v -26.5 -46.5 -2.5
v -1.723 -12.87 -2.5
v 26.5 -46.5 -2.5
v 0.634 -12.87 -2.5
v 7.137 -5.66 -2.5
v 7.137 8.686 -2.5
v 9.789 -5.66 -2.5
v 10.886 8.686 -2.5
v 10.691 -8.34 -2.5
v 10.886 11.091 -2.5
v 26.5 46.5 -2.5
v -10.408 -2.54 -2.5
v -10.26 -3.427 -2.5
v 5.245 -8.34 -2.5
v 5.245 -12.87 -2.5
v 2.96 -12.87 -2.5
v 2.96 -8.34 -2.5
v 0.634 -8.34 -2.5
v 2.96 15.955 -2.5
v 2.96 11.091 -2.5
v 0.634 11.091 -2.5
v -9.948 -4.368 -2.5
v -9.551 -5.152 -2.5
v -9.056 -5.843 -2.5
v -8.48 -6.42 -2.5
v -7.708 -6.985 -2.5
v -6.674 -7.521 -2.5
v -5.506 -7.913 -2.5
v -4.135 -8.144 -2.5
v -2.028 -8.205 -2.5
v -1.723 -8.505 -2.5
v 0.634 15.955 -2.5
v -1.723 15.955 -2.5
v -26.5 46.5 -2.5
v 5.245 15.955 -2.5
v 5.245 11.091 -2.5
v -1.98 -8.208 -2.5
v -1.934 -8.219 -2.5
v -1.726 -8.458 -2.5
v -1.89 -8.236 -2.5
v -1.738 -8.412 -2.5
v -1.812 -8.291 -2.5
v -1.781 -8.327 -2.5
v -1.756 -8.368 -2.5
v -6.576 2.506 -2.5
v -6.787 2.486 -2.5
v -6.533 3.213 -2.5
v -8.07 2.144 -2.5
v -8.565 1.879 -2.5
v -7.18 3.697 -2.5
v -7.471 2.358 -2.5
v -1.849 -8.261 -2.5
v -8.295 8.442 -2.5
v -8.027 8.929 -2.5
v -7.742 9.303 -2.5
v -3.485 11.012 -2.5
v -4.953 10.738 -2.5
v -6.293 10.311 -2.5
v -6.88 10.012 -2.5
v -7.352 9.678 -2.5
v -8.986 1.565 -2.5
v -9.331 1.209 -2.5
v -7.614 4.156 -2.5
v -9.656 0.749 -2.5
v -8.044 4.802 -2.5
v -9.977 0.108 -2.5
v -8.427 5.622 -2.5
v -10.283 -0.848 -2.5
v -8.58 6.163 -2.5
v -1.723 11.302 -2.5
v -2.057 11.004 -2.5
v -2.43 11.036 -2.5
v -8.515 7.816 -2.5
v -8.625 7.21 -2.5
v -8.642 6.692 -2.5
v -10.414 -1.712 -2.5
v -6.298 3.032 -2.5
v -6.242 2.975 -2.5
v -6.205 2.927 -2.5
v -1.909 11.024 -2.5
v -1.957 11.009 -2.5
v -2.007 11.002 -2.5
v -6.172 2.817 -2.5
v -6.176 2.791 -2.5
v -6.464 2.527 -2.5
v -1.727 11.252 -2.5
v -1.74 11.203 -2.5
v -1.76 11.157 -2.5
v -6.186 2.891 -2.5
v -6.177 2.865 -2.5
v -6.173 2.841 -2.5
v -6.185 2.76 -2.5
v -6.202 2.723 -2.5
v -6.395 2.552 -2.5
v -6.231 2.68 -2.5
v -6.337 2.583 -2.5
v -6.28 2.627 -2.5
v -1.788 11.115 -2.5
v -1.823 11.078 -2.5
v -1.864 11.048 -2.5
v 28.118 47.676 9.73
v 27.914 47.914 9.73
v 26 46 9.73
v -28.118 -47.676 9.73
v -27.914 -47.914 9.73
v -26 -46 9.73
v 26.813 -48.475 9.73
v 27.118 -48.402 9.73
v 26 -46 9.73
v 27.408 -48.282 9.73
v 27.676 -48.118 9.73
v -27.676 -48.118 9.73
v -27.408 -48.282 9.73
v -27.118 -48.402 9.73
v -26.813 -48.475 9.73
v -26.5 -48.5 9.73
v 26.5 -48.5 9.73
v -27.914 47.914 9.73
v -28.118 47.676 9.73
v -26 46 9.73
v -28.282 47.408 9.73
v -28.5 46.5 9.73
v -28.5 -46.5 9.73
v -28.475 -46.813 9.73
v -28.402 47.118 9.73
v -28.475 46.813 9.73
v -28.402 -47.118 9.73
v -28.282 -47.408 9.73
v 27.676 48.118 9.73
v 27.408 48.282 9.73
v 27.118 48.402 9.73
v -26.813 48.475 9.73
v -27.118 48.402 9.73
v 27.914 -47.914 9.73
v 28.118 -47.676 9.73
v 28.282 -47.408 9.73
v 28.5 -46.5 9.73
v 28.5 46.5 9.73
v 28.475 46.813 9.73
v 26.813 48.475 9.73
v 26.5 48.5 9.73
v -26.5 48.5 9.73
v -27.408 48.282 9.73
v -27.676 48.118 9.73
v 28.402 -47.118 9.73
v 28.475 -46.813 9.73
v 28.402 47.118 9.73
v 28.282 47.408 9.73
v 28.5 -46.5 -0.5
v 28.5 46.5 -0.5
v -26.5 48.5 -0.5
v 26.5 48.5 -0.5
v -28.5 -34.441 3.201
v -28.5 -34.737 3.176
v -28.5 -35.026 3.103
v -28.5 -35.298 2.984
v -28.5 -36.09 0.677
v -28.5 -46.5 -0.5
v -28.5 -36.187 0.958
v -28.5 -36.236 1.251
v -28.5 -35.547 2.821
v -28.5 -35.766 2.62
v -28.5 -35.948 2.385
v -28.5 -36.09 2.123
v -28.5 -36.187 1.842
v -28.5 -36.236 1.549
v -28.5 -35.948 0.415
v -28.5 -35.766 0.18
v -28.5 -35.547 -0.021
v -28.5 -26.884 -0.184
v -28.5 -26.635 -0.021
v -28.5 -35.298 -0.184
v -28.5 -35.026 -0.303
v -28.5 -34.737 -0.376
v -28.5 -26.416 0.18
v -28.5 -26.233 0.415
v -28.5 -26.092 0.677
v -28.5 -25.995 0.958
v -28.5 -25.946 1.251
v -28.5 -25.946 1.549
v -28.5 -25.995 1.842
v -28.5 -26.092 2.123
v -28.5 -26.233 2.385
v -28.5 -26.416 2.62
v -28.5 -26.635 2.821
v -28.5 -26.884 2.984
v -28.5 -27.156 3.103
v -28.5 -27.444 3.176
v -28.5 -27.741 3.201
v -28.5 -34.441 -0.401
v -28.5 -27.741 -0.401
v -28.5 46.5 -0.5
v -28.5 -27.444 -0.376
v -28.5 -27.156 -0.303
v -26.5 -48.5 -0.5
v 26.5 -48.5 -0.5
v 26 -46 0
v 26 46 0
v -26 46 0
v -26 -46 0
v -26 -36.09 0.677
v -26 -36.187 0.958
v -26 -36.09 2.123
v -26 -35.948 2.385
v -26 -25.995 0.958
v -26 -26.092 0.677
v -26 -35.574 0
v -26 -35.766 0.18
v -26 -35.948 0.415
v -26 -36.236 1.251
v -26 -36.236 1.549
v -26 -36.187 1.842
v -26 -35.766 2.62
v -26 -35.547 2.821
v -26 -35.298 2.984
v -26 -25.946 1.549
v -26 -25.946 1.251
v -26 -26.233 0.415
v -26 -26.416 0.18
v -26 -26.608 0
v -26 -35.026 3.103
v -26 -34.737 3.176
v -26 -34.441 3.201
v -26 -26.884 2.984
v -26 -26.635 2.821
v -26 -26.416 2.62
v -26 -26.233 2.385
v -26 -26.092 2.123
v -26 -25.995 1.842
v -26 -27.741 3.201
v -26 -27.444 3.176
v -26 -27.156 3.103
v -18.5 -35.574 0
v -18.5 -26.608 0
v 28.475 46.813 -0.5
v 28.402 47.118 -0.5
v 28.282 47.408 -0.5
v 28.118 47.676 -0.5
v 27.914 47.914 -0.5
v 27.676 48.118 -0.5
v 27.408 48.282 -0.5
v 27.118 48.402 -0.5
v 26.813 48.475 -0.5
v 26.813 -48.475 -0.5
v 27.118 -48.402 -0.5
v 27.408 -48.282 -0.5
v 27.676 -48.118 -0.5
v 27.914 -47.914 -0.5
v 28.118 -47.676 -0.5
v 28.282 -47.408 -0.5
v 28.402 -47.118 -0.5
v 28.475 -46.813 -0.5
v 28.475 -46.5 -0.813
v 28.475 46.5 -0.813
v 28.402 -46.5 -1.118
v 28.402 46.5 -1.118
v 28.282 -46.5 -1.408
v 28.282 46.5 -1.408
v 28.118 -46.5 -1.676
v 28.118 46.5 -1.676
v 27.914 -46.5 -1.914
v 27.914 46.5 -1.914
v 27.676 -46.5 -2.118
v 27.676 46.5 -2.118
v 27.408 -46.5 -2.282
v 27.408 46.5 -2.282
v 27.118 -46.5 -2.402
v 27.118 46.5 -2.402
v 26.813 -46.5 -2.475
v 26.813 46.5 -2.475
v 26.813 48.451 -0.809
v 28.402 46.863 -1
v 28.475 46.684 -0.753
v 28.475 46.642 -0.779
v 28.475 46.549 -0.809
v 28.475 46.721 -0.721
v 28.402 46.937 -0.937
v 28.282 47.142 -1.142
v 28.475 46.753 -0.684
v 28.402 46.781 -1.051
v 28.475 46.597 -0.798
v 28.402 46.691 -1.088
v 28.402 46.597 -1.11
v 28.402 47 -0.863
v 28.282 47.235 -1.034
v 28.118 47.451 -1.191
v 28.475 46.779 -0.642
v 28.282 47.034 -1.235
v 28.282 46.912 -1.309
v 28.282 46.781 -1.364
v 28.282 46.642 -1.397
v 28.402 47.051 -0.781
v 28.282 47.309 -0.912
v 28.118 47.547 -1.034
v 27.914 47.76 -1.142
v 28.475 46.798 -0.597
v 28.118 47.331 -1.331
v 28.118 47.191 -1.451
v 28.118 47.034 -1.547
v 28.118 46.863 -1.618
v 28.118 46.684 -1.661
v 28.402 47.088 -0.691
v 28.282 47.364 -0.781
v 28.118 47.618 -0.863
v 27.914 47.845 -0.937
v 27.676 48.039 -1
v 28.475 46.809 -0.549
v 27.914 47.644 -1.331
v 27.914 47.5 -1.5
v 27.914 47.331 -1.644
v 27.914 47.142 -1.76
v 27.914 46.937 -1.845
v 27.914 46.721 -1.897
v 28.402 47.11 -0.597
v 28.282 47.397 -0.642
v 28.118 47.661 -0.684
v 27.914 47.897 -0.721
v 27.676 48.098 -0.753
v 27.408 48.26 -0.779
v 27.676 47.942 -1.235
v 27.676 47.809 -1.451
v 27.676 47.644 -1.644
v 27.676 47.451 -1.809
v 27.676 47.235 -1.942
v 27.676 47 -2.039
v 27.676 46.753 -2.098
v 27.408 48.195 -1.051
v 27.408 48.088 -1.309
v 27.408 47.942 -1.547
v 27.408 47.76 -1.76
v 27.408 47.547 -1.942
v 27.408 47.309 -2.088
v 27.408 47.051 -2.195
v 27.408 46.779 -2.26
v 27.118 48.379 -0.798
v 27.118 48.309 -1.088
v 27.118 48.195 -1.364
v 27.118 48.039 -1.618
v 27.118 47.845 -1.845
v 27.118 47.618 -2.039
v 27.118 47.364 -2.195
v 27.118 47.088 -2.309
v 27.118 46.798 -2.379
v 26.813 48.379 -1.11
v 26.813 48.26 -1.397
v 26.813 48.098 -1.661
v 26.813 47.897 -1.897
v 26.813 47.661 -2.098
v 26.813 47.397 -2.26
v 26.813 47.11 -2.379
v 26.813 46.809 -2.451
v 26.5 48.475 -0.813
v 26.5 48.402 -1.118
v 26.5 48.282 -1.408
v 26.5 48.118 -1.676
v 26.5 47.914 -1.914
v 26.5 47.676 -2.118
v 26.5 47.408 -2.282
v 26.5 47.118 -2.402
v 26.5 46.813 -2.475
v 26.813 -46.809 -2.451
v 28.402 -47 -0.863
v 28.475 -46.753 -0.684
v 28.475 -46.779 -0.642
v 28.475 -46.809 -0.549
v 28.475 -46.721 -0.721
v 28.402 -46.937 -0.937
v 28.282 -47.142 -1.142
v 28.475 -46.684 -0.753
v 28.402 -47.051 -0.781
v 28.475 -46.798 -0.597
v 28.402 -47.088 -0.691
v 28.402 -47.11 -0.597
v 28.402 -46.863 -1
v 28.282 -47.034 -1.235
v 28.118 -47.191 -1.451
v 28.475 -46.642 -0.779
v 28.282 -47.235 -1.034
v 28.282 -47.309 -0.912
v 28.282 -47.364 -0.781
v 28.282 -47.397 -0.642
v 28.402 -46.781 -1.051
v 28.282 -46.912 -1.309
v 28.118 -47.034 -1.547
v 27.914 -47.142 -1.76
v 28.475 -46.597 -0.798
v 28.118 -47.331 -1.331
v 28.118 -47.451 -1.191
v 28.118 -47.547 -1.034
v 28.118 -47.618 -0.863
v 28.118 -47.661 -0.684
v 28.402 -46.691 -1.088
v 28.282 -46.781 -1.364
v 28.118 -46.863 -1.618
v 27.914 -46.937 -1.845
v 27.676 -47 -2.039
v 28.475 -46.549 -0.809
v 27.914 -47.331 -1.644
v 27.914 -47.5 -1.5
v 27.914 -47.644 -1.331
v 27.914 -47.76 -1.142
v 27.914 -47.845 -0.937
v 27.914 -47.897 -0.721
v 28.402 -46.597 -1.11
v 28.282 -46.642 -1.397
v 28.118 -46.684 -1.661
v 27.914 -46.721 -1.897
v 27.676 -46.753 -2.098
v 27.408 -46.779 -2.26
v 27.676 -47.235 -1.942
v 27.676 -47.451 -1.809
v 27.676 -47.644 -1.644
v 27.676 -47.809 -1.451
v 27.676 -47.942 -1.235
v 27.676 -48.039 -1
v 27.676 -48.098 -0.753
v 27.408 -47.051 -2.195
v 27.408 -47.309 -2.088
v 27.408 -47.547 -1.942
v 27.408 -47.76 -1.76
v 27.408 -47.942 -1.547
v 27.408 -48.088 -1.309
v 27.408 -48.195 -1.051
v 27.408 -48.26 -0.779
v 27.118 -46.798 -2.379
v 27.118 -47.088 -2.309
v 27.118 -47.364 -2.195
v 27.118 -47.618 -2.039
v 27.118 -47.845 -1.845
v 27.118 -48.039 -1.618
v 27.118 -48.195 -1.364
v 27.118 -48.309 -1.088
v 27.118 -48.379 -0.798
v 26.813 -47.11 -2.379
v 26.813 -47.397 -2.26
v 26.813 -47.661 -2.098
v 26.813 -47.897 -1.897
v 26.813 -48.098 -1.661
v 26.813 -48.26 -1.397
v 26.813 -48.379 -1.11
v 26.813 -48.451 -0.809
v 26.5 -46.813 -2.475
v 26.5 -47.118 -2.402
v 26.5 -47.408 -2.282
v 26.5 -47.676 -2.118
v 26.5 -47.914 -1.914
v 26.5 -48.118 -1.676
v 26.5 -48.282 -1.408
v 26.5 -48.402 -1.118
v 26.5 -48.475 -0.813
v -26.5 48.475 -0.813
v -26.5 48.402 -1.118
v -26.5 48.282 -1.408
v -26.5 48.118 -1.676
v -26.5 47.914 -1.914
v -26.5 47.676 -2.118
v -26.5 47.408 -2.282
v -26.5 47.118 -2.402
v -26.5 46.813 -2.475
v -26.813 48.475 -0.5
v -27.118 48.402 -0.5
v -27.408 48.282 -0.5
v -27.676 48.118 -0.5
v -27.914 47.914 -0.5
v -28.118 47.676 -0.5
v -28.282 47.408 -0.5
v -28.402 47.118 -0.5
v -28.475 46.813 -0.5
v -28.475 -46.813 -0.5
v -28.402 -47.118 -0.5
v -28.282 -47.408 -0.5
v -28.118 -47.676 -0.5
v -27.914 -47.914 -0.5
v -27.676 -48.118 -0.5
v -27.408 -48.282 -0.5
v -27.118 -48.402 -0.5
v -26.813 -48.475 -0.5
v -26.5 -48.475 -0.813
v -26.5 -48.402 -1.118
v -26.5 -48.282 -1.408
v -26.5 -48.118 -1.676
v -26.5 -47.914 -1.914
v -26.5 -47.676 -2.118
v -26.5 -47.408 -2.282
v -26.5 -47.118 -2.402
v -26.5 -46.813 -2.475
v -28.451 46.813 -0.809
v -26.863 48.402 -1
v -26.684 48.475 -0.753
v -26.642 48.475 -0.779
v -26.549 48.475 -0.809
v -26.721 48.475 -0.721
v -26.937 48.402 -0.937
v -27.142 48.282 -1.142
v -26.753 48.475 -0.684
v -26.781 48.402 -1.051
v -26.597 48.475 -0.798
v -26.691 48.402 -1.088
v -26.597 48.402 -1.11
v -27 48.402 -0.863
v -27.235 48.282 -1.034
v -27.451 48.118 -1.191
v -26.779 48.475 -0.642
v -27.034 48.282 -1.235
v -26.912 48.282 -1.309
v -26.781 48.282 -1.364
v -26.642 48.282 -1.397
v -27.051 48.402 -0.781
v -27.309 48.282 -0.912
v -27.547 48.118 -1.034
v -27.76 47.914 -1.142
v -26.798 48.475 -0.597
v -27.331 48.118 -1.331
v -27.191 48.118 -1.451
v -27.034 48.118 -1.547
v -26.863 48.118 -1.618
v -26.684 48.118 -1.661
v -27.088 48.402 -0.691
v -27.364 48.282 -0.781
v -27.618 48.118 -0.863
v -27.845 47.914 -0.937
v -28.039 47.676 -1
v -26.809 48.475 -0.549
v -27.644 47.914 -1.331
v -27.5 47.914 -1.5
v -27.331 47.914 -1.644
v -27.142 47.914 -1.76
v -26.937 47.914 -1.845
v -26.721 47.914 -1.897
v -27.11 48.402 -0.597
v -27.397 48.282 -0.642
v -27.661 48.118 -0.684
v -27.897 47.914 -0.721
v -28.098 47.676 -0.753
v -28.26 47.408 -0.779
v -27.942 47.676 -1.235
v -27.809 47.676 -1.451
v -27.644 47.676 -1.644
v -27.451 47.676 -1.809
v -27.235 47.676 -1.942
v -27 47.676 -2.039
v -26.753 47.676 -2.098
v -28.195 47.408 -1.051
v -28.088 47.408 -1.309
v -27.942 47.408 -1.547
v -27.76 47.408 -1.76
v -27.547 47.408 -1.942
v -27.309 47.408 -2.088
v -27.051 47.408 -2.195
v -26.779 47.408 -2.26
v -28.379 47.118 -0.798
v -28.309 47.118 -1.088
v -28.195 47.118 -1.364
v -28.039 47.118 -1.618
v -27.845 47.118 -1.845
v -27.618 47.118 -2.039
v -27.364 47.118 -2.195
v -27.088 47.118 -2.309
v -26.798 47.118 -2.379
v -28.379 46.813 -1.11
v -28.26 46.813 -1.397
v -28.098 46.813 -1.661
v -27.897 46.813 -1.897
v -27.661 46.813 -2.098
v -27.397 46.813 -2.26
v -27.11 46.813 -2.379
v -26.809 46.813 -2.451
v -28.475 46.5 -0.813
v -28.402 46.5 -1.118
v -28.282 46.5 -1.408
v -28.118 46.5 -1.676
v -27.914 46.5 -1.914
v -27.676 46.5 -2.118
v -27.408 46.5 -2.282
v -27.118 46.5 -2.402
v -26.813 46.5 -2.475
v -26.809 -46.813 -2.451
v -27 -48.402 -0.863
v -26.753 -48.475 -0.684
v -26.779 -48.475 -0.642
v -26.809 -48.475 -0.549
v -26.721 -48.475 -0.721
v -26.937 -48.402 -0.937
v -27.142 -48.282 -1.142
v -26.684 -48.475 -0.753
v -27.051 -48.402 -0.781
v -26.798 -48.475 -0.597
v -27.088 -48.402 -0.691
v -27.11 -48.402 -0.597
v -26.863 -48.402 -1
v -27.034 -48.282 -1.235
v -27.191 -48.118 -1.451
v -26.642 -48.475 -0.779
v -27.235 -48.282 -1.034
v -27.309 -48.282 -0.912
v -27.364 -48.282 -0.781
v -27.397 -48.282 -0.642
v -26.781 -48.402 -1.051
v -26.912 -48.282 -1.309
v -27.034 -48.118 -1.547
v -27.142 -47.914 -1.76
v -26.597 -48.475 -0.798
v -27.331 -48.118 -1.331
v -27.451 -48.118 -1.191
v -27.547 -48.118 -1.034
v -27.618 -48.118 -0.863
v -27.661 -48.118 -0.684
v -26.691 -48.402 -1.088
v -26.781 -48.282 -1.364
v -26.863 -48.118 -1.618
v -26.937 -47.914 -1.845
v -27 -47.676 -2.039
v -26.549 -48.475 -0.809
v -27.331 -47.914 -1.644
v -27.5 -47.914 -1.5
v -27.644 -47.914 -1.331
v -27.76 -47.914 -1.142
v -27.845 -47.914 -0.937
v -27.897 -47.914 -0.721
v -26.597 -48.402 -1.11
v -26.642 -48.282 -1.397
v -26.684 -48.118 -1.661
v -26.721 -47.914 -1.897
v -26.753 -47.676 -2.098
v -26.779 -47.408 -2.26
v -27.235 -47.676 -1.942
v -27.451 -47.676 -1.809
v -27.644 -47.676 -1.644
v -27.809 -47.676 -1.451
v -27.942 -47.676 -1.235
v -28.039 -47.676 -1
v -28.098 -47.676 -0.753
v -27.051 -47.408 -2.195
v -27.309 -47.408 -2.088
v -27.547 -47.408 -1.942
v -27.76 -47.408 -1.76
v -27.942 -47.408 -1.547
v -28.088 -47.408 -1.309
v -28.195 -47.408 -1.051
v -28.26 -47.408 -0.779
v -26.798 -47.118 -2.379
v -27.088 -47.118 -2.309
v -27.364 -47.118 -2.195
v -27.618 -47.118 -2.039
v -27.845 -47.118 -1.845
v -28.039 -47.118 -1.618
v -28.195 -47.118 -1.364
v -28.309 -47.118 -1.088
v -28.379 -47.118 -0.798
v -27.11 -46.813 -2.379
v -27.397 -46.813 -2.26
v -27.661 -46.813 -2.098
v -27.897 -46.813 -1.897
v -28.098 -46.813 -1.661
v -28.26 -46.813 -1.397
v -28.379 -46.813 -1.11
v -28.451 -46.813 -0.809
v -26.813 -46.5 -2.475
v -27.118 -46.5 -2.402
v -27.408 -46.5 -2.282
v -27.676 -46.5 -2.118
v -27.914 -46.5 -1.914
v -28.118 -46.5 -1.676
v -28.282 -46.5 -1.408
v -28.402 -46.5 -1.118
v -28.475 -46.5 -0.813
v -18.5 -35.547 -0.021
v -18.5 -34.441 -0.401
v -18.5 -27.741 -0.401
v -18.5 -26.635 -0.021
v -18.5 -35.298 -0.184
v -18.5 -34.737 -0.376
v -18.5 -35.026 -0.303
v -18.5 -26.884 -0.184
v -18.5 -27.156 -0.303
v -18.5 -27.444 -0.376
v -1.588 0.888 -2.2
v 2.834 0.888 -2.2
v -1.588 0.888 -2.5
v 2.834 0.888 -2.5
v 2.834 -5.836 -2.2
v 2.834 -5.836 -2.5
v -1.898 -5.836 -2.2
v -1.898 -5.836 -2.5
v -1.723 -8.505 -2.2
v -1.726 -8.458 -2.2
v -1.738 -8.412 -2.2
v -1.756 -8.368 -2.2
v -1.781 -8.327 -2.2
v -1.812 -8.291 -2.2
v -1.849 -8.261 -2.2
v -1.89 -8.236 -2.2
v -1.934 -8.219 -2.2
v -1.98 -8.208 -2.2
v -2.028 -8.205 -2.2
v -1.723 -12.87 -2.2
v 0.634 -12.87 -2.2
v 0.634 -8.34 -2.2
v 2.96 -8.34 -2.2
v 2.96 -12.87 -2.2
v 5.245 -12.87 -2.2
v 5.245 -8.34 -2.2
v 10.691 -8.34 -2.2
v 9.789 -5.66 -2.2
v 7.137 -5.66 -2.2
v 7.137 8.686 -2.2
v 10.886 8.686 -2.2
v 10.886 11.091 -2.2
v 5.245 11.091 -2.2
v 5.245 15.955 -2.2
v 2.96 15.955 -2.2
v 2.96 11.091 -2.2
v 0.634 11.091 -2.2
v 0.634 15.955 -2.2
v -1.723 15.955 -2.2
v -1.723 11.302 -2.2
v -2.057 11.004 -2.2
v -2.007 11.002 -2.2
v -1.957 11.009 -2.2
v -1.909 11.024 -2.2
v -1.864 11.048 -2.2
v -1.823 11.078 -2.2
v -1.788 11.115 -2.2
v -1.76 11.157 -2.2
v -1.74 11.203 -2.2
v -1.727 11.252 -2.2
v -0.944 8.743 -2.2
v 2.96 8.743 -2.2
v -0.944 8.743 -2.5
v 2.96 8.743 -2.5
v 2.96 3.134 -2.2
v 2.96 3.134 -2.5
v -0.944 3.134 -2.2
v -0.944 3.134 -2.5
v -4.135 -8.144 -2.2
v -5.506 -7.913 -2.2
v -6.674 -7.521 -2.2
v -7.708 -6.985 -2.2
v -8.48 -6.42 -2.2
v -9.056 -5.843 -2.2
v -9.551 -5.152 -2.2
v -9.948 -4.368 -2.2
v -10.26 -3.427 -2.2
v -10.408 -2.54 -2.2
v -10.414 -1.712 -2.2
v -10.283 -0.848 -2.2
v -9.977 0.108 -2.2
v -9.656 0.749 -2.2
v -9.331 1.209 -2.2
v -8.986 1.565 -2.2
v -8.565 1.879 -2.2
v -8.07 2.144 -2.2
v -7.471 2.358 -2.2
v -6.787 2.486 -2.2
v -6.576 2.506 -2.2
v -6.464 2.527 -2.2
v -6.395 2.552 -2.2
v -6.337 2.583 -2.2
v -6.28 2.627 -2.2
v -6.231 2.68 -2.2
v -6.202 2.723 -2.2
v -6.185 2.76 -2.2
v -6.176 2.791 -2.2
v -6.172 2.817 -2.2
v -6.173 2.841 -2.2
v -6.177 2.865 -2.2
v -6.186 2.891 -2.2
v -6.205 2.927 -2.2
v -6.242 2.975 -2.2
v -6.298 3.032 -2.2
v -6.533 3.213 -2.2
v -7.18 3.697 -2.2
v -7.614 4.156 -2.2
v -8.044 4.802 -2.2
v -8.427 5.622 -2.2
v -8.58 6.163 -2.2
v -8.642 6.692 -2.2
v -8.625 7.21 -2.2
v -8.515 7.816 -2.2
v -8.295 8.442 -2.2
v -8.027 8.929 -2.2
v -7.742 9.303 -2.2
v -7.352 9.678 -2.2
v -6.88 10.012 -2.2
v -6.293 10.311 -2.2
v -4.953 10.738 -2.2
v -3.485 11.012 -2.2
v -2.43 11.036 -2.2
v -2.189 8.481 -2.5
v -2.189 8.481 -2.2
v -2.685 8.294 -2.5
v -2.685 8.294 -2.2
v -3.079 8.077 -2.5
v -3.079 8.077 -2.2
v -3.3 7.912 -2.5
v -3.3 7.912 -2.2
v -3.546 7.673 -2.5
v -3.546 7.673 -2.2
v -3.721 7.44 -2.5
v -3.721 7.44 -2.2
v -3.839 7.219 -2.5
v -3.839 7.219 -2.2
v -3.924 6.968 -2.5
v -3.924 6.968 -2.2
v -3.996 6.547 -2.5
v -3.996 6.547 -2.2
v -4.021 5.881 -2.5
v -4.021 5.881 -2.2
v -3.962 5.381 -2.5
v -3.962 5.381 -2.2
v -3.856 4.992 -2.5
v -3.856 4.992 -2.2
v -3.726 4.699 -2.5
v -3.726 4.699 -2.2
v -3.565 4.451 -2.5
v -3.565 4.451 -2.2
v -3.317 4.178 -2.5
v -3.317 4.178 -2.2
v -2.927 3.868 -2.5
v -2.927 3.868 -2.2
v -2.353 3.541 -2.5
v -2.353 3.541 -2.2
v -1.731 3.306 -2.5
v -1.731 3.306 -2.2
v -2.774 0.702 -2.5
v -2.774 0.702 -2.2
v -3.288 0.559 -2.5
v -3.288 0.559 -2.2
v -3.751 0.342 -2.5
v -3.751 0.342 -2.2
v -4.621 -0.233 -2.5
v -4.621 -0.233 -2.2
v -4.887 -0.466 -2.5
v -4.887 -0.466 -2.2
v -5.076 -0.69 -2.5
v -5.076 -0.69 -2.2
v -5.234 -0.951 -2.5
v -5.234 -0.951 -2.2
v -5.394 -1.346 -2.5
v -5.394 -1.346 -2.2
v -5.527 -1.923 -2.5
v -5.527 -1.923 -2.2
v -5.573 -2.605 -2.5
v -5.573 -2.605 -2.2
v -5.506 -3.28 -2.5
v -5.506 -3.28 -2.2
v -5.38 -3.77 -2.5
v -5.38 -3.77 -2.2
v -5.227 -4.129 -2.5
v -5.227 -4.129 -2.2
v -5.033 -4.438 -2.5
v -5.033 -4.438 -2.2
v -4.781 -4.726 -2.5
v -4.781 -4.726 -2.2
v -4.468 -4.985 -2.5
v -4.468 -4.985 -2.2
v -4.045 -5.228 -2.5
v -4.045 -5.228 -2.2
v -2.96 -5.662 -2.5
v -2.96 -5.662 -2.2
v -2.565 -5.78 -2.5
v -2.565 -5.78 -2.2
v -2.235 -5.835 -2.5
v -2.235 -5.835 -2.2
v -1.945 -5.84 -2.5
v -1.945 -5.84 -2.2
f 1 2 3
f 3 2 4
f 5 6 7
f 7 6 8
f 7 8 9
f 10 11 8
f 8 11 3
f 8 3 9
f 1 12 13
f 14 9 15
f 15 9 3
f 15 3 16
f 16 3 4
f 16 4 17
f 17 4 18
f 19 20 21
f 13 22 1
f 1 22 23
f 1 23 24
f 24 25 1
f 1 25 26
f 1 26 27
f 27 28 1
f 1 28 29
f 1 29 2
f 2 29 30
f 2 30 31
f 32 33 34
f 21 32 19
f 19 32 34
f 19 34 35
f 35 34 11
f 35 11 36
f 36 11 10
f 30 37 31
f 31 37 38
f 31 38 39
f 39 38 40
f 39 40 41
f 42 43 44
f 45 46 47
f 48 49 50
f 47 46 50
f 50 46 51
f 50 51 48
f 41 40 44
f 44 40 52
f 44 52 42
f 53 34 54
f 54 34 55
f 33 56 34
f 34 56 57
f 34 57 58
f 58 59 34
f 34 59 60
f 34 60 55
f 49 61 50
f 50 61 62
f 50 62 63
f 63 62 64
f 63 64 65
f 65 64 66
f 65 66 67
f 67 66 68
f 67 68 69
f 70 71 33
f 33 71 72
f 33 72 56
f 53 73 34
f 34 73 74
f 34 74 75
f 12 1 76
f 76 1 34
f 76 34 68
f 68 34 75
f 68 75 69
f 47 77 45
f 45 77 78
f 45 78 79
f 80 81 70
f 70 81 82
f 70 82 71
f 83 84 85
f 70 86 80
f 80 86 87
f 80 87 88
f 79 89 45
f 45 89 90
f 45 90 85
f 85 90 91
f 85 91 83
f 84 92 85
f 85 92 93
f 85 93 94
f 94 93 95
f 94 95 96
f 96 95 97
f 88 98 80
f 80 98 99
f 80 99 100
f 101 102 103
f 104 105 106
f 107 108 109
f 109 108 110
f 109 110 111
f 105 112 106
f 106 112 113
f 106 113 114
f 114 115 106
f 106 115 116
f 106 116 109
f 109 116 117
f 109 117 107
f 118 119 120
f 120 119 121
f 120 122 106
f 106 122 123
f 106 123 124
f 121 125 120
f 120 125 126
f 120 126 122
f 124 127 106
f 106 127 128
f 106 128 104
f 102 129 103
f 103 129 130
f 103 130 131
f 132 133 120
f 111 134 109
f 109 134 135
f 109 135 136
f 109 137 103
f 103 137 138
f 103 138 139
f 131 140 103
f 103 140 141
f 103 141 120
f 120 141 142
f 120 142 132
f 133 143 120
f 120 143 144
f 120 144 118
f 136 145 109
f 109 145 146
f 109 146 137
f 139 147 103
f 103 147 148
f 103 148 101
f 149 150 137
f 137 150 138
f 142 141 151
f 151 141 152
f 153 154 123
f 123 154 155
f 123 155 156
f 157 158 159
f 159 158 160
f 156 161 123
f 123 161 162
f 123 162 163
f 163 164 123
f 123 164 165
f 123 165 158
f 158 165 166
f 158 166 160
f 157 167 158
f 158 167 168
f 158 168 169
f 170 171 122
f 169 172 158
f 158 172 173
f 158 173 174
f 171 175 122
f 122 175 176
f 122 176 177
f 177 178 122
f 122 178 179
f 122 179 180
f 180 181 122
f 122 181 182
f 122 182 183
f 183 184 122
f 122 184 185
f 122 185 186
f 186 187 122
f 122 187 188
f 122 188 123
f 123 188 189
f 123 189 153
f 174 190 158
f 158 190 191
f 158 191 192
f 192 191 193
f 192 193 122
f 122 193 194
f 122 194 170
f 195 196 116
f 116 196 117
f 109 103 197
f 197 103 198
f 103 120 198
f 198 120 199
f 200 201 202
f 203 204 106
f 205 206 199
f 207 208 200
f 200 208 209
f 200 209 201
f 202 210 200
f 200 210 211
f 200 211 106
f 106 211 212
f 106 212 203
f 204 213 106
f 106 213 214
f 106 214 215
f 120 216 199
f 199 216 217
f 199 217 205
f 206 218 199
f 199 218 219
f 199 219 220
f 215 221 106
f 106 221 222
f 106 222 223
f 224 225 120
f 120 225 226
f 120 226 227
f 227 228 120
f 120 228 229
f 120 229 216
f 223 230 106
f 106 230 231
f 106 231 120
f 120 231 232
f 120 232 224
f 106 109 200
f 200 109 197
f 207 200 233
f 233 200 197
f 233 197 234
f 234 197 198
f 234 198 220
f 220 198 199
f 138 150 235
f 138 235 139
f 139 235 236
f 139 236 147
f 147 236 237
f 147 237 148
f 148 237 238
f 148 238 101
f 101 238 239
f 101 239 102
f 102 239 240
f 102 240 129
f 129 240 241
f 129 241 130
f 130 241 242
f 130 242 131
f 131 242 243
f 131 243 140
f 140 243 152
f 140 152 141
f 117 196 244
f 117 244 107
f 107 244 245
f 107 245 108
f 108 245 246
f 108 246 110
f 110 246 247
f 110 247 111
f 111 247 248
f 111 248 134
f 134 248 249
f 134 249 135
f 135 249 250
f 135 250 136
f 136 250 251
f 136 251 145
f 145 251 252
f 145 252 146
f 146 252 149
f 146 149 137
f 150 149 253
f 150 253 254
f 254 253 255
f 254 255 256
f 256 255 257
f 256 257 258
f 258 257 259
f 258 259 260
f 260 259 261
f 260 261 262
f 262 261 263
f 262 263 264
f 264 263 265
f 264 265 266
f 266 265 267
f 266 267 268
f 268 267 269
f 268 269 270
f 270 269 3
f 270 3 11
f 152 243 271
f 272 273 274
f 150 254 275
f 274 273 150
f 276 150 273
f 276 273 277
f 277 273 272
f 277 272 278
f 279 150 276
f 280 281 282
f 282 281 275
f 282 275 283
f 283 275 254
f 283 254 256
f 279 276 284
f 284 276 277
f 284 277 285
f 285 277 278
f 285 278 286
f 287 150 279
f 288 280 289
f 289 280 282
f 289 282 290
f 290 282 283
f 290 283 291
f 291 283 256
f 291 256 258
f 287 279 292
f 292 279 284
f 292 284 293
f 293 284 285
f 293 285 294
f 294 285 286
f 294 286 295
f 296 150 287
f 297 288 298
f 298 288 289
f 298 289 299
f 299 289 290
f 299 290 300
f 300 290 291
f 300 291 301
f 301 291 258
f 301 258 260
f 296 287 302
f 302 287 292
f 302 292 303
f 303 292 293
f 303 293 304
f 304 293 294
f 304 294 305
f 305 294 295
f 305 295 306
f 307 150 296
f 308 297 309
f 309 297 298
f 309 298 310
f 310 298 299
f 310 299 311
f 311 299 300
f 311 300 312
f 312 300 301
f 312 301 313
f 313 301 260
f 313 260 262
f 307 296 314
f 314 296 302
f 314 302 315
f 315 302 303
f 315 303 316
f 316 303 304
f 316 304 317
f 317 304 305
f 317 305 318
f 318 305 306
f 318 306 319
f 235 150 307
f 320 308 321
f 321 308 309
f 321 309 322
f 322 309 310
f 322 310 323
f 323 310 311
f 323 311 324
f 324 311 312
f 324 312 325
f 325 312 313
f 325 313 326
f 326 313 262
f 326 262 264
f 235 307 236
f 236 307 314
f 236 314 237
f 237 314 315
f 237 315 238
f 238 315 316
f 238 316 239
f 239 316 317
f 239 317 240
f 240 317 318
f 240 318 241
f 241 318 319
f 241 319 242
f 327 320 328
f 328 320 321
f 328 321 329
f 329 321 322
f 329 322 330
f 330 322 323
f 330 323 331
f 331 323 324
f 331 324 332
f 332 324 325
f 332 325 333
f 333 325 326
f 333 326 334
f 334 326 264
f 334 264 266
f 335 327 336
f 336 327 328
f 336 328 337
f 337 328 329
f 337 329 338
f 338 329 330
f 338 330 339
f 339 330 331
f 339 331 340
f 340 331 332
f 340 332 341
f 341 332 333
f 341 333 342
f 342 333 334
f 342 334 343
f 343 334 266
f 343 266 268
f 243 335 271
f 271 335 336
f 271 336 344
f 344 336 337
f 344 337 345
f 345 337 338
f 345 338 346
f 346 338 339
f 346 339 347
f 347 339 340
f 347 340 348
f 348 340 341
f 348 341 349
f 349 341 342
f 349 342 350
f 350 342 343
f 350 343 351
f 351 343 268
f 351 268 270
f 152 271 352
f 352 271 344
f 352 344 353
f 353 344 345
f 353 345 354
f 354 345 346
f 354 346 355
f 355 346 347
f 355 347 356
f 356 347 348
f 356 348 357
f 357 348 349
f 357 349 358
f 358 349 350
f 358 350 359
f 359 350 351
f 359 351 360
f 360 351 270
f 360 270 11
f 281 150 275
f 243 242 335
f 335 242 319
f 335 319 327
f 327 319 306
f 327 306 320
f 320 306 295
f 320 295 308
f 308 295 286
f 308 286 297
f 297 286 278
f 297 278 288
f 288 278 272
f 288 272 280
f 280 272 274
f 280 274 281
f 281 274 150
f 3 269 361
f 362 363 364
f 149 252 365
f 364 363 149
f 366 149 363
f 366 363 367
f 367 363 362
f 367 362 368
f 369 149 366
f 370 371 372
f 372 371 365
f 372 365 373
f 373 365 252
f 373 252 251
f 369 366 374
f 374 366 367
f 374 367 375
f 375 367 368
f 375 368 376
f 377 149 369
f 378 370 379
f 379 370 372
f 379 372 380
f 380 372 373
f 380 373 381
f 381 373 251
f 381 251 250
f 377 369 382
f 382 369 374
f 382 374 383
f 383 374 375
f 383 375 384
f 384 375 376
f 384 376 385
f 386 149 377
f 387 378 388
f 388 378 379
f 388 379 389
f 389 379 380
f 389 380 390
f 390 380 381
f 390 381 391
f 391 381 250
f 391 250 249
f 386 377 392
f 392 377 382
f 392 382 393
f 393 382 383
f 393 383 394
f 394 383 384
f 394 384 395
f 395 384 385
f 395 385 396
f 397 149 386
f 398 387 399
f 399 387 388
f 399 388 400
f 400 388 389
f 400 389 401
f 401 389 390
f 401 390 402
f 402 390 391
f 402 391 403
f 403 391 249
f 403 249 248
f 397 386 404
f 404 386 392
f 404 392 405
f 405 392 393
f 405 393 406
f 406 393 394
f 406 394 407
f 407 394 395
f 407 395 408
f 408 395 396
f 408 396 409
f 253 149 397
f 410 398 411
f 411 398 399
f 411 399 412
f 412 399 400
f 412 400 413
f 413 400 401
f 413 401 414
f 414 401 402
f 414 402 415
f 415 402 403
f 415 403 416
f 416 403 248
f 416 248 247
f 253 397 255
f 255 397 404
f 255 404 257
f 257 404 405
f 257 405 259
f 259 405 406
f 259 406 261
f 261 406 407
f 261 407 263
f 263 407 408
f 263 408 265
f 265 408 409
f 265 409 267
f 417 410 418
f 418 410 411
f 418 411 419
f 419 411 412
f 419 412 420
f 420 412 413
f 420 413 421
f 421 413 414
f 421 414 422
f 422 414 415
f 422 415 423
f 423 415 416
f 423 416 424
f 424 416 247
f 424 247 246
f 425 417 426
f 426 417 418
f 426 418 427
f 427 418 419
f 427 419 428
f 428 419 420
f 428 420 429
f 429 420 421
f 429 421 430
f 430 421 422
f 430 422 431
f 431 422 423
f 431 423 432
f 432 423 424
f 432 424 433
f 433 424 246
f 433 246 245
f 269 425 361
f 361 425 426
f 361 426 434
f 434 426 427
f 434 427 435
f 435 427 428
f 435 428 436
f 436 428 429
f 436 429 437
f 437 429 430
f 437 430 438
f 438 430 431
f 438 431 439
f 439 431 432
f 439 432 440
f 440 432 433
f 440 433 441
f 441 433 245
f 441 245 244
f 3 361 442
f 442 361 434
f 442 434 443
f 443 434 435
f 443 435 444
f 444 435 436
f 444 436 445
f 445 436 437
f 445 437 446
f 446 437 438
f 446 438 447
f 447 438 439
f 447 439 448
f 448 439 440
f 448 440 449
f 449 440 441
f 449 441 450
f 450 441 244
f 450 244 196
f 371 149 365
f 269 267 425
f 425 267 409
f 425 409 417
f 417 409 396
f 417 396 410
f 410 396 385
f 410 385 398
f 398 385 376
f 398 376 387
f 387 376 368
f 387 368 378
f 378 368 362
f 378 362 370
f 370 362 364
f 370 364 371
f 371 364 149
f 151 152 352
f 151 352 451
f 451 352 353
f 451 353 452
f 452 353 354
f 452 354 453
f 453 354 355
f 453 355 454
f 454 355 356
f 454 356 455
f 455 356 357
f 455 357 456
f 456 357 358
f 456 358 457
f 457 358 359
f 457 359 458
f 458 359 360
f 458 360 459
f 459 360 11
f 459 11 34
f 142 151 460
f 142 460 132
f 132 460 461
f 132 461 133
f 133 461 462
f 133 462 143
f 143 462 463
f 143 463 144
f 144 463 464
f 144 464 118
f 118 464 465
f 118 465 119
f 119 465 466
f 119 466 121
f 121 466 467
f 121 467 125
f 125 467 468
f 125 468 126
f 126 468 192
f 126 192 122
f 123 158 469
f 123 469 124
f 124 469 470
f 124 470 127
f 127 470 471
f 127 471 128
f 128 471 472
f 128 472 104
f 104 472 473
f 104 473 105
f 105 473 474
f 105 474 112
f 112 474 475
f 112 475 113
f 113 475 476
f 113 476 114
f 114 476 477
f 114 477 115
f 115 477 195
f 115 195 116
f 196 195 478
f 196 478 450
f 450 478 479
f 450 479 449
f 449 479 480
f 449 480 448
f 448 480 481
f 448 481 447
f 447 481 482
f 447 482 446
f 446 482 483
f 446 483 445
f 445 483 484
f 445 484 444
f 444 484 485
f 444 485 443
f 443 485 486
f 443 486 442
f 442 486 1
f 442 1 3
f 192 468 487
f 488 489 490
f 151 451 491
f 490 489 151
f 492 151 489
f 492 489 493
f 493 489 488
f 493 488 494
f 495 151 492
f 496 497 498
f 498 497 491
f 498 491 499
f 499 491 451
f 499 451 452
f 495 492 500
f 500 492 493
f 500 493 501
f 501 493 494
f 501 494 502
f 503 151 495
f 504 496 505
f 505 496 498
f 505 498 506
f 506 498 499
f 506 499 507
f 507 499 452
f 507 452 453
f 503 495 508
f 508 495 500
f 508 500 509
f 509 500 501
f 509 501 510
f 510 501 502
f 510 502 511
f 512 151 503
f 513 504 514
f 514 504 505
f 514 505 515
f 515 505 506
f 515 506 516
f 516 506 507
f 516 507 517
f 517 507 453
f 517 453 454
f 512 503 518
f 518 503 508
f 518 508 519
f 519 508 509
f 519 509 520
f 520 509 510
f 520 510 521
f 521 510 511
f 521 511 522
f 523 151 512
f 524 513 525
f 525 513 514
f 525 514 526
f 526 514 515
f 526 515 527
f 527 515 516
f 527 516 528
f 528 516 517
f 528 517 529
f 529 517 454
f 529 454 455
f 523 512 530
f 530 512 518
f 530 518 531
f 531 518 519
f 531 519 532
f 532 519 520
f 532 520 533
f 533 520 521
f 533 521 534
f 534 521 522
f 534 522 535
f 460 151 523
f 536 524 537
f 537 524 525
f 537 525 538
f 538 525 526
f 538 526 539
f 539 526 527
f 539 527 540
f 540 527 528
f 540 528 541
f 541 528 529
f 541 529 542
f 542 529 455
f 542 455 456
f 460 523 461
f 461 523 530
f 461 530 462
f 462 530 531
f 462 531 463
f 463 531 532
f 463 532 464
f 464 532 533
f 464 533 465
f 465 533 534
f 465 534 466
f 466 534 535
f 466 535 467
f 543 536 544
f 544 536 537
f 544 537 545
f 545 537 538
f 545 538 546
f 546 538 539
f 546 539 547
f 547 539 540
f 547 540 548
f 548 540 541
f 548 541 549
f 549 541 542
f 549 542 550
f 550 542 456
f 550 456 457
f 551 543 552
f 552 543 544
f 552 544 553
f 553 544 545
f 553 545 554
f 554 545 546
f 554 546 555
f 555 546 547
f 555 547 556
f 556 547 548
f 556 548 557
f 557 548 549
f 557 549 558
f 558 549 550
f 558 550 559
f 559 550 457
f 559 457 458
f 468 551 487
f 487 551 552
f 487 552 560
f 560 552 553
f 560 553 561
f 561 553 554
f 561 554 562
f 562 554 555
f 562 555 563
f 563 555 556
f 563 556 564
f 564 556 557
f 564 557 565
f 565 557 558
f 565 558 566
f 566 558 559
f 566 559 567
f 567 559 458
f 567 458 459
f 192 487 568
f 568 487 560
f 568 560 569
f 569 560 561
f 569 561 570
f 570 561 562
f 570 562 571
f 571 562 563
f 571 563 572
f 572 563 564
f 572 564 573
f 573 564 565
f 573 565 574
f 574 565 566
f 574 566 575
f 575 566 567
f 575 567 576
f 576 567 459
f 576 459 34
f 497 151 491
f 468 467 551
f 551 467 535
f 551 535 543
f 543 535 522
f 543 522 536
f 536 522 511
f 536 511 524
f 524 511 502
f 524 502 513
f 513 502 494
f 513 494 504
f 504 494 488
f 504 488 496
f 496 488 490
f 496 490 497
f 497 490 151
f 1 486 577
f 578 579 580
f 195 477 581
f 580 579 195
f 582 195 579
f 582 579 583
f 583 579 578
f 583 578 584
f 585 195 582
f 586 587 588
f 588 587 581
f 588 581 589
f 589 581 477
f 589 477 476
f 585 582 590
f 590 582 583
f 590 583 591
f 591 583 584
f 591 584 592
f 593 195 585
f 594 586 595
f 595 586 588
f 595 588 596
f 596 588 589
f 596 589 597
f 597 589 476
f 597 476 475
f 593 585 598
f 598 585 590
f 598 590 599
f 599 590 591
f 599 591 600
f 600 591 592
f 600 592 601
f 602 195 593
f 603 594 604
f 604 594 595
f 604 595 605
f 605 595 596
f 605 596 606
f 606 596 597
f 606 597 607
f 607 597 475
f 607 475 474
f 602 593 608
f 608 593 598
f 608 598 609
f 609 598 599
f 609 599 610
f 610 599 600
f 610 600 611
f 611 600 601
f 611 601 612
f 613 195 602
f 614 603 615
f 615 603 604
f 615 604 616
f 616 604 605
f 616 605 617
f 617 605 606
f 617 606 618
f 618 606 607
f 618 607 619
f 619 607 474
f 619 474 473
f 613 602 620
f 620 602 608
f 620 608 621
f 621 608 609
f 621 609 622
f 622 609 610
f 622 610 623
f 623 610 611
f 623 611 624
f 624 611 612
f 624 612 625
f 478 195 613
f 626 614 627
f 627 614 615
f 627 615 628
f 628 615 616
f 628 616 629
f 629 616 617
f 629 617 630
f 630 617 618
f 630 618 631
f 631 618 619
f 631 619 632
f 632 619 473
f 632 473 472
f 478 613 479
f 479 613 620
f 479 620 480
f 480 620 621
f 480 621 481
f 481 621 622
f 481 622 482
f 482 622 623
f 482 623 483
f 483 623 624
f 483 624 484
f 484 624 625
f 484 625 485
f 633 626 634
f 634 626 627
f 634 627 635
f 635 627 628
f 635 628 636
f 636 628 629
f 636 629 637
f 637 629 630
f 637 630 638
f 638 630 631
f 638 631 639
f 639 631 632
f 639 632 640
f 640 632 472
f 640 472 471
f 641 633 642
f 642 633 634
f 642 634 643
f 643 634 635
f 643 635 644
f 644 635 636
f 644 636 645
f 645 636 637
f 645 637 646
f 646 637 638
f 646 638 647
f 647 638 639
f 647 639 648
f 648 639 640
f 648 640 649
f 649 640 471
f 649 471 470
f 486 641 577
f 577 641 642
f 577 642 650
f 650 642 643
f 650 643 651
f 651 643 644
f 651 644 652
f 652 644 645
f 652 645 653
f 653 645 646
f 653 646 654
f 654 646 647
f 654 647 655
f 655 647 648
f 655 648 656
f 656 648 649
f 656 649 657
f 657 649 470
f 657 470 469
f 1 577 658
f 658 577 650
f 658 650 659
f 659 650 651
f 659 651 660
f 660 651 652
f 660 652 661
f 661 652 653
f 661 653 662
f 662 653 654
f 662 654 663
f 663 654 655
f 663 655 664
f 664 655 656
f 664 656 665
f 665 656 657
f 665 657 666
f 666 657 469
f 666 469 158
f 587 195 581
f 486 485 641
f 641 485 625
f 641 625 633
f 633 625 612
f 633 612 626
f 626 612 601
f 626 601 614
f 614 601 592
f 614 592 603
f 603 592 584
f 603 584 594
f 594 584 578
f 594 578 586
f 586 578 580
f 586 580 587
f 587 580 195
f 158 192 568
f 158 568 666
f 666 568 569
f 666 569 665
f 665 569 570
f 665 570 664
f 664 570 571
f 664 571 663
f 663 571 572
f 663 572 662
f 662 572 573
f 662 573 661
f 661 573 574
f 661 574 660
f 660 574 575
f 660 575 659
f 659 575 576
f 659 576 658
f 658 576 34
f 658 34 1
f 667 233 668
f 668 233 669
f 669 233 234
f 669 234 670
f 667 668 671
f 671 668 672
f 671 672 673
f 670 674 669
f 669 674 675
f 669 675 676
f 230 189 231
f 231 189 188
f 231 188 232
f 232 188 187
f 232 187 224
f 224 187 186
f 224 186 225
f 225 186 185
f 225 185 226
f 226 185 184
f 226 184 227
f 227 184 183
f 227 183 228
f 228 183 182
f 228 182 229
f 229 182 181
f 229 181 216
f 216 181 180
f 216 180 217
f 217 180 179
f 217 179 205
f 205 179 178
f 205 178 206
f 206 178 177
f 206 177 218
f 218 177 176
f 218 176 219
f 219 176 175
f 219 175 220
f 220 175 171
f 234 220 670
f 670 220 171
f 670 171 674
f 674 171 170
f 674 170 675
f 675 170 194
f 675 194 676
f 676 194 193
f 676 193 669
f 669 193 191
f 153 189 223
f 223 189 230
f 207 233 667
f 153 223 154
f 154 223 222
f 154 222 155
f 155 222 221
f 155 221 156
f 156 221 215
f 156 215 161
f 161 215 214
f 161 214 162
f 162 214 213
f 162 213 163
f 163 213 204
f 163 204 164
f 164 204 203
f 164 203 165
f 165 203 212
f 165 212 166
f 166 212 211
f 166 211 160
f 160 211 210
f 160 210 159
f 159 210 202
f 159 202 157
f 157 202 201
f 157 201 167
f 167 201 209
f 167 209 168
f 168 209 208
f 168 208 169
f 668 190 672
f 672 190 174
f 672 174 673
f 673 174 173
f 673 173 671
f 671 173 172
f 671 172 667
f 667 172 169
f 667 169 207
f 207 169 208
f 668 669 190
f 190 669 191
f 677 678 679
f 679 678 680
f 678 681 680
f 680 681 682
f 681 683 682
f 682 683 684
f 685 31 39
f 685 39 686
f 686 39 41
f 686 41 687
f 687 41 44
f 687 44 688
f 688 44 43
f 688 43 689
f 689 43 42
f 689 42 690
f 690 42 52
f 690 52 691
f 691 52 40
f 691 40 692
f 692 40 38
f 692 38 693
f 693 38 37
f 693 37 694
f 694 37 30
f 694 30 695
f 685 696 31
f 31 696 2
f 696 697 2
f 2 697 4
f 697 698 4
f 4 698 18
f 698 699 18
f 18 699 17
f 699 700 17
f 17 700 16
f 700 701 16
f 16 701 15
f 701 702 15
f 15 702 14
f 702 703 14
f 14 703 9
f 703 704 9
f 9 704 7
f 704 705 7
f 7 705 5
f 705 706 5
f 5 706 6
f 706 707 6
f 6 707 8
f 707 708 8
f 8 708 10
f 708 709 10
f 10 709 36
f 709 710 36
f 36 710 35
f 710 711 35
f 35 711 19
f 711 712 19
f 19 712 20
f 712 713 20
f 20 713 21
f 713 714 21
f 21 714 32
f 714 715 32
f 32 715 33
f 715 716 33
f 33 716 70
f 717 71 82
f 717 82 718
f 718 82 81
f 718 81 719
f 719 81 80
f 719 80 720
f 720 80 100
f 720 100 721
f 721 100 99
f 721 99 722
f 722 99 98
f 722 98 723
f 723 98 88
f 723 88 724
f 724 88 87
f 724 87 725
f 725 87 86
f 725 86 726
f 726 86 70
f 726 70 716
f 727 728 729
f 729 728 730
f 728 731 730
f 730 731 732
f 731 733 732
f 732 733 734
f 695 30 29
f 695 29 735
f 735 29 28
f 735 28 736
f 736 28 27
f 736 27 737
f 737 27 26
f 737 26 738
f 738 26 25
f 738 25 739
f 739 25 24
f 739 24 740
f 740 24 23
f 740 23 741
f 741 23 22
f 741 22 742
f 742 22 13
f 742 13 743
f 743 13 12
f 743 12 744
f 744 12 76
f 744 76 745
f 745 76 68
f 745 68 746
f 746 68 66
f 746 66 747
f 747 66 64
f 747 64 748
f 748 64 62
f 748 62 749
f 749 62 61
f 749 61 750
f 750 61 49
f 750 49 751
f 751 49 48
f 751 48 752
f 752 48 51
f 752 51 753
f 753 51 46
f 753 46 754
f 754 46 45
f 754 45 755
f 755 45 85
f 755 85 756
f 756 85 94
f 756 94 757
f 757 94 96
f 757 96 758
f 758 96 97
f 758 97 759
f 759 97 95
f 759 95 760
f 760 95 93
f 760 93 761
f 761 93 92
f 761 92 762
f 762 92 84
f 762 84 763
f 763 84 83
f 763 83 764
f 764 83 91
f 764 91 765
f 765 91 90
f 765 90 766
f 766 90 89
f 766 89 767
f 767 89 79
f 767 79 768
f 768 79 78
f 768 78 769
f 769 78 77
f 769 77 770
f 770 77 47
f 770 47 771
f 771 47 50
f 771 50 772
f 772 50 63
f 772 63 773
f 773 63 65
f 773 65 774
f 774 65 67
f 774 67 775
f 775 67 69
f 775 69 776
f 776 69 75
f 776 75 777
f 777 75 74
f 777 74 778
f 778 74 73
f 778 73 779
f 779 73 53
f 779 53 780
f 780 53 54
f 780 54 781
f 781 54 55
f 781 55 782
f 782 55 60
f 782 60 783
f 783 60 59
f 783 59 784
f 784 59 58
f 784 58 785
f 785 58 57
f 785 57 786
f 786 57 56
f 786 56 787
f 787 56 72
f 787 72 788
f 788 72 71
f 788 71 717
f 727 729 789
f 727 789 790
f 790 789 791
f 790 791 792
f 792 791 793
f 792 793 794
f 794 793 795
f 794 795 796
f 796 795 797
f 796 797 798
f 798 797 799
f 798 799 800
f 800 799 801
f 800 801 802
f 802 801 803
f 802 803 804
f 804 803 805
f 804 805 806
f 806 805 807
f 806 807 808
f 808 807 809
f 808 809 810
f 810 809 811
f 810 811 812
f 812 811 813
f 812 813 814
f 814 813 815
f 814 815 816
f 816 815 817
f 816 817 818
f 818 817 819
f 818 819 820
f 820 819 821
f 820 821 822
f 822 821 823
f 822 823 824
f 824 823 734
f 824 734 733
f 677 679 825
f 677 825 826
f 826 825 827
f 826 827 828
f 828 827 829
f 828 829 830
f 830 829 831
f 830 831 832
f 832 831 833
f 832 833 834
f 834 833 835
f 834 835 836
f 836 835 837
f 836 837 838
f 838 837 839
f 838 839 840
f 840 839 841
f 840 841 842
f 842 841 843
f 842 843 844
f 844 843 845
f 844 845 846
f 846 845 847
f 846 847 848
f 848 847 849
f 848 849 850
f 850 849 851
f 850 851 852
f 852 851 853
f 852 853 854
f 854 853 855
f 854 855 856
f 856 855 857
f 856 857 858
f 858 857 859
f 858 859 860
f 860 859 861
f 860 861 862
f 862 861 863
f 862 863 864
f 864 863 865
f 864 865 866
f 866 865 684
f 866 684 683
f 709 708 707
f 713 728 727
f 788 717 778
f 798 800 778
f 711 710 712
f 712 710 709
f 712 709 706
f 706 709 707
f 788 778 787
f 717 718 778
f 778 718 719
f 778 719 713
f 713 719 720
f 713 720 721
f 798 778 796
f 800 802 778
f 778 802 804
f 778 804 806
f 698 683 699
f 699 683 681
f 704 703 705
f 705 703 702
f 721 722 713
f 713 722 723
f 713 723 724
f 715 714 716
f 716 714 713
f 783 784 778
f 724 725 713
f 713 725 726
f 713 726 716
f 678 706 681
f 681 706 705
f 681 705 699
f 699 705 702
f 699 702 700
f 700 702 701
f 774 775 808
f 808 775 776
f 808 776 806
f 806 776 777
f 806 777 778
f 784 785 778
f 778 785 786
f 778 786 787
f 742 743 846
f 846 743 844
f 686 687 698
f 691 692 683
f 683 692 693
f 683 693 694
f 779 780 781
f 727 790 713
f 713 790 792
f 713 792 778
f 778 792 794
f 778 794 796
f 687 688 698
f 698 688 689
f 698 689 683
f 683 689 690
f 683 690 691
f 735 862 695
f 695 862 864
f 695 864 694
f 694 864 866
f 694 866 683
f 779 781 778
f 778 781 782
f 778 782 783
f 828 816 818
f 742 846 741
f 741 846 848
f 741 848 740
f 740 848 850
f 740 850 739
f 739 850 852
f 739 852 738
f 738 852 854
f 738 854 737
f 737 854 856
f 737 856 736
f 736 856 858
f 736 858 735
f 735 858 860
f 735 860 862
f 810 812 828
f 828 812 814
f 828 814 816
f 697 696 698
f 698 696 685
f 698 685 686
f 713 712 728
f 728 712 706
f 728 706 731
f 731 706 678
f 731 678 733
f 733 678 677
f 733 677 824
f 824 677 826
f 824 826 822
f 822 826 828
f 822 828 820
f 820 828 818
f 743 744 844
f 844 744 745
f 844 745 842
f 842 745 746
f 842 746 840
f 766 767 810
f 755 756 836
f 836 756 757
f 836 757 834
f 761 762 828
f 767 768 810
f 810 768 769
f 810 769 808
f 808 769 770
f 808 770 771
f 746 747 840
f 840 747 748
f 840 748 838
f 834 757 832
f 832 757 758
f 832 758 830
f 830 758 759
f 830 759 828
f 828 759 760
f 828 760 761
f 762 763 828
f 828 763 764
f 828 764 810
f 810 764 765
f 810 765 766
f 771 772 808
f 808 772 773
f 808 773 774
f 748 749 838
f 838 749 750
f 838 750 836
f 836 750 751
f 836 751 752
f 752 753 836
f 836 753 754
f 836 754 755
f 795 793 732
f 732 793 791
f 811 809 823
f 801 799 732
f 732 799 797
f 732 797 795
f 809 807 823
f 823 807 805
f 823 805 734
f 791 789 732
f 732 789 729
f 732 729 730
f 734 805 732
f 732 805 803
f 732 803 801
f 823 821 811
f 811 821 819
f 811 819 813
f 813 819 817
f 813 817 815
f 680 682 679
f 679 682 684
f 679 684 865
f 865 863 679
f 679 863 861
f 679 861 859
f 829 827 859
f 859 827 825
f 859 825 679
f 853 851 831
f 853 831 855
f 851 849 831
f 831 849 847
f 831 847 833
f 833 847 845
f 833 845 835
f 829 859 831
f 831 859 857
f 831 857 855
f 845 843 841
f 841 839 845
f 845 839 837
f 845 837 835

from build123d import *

# Parameters (mm, degrees)
ESQUISSE1_W             = 52
ESQUISSE1_H             = 92
BOSS_EXTRU_1_DEPTH      = 9.73
COQUE1_T                = 2.5
CONG_1_R                = 2
ENL_V_MAT_EXTRU_1_DEPTH = 10
ENL_V_MAT_EXTRU_3_DEPTH = 0.3


with BuildPart() as part:
    # Esquisse1 → Boss.-Extru.1 (new body)
    with BuildSketch(Plane.XY):
        Rectangle(ESQUISSE1_W, ESQUISSE1_H)
    extrude(amount=BOSS_EXTRU_1_DEPTH)

    # Coque1
    coque1_openings = [part.faces().sort_by_distance(p)[0] for p in [
        (0, 0, 9.73),
    ]]
    offset(amount=COQUE1_T, openings=coque1_openings, kind=Kind.INTERSECTION)

    # Congé1
    # the kernel refuses this fillet: 2 mm, written as the material it takes off along each edge
    with BuildSketch(Plane(origin=(-26.5, -46.5, -0.5), x_dir=(0, 0, -1), z_dir=(-1, 0, 0))) as cong_1_piece_1_section:
        Polygon((0, 0), (CONG_1_R, 0), (CONG_1_R, CONG_1_R), (0, CONG_1_R), align=None)
    cong_1_piece_1 = extrude(amount=CONG_1_R, mode=Mode.PRIVATE)
    cong_1_piece_1 = cong_1_piece_1 - Plane(origin=(-26.5, -46.5, -0.5), x_dir=(0, 0.7071067811865475, 0.7071067811865475), z_dir=(-1, 0, 0)) * Sphere(CONG_1_R, mode=Mode.PRIVATE)
    add(cong_1_piece_1, mode=Mode.SUBTRACT)
    with BuildSketch(Plane(origin=(26.5, -46.5, -0.5), x_dir=(0, -1, 0), z_dir=(0, 0, -1))) as cong_1_piece_2_section:
        Polygon((0, 0), (CONG_1_R, 0), (CONG_1_R, -CONG_1_R), (0, -CONG_1_R), align=None)
    cong_1_piece_2 = extrude(amount=CONG_1_R, mode=Mode.PRIVATE)
    cong_1_piece_2 = cong_1_piece_2 - Plane(origin=(26.5, -46.5, -0.5), x_dir=(-0.7071067811865475, 0.7071067811865475, 0), z_dir=(0, 0, -1)) * Sphere(CONG_1_R, mode=Mode.PRIVATE)
    add(cong_1_piece_2, mode=Mode.SUBTRACT)
    with BuildSketch(Plane(origin=(-26.5, 46.5, -0.5), x_dir=(-1, 0, 0), z_dir=(0, 1, 0))) as cong_1_piece_3_section:
        Polygon((0, 0), (CONG_1_R, 0), (CONG_1_R, -CONG_1_R), (0, -CONG_1_R), align=None)
    cong_1_piece_3 = extrude(amount=CONG_1_R, mode=Mode.PRIVATE)
    cong_1_piece_3 = cong_1_piece_3 - Plane(origin=(-26.5, 46.5, -0.5), x_dir=(0.7071067811865475, 0, 0.7071067811865475), z_dir=(0, 1, 0)) * Sphere(CONG_1_R, mode=Mode.PRIVATE)
    add(cong_1_piece_3, mode=Mode.SUBTRACT)
    with BuildSketch(Plane(origin=(26.5, 46.5, -0.5), x_dir=(0, 0, -1), z_dir=(0, 1, 0))) as cong_1_piece_4_section:
        Polygon((0, 0), (CONG_1_R, 0), (CONG_1_R, -CONG_1_R), (0, -CONG_1_R), align=None)
    cong_1_piece_4 = extrude(amount=CONG_1_R, mode=Mode.PRIVATE)
    cong_1_piece_4 = cong_1_piece_4 - Plane(origin=(26.5, 46.5, -0.5), x_dir=(-0.7071067811865475, 0, 0.7071067811865475), z_dir=(0, 1, 0)) * Sphere(CONG_1_R, mode=Mode.PRIVATE)
    add(cong_1_piece_4, mode=Mode.SUBTRACT)
    with BuildSketch(Plane(origin=(-26.5, -48.5, -2.5), x_dir=(0, 0, 1), z_dir=(1, 0, 0)), Plane(origin=(26.5, 48.5, -2.5), x_dir=(0, 0, 1), z_dir=(-1, 0, 0))) as cong_1_piece_5:
        with BuildLine():
            CenterArc((CONG_1_R, -CONG_1_R), CONG_1_R, 90, 90)
            Line((0, -CONG_1_R), (0, 0))
            Line((0, 0), (CONG_1_R, 0))
        make_face()
    extrude(amount=53, mode=Mode.SUBTRACT)
    with BuildSketch(Plane(origin=(-28.5, 46.5, -2.5), x_dir=(0, 0, 1), z_dir=(0, -1, 0)), Plane(origin=(28.5, -46.5, -2.5), x_dir=(0, 0, 1), z_dir=(0, 1, 0))) as cong_1_piece_6:
        with BuildLine():
            CenterArc((CONG_1_R, -CONG_1_R), CONG_1_R, 90, 90)
            Line((0, -CONG_1_R), (0, 0))
            Line((0, 0), (CONG_1_R, 0))
        make_face()
    extrude(amount=93, mode=Mode.SUBTRACT)
    with BuildSketch(Plane(origin=(28.5, -48.5, -0.5), x_dir=(-1, 0, 0), z_dir=(0, 0, 1)), Plane(origin=(-28.5, -48.5, 14.73), x_dir=(1, 0, 0), z_dir=(0, 0, -1)), Plane(origin=(-28.5, 48.5, -0.5), x_dir=(1, 0, 0), z_dir=(0, 0, 1)), Plane(origin=(28.5, 48.5, -0.5), x_dir=(0, -1, 0), z_dir=(0, 0, 1))) as cong_1_piece_7:
        with BuildLine():
            CenterArc((CONG_1_R, -CONG_1_R), CONG_1_R, 90, 90)
            Line((0, -CONG_1_R), (0, 0))
            Line((0, 0), (CONG_1_R, 0))
        make_face()
    extrude(amount=15.23, mode=Mode.SUBTRACT)

    # Esquisse2 → Enlèv. mat.-Extru.1 (cut)
    with BuildSketch(Plane.ZY.offset(28.5)):
        with BuildLine():
            Line((3.2008816, -27.740794349), (3.2008816, -34.440794349))
            ThreePointArc((3.2008816, -34.440794349), (1.4, -36.241675948), (-0.4008816, -34.440794349))
            Line((-0.4008816, -34.440794349), (-0.4008816, -27.740794349))
            ThreePointArc((-0.4008816, -27.740794349), (1.4, -25.939912749), (3.2008816, -27.740794349))
        make_face()
    extrude(amount=-ENL_V_MAT_EXTRU_1_DEPTH, mode=Mode.SUBTRACT)

    # Esquisse3 → Enlèv. mat.-Extru.3 (cut)
    with BuildSketch(Plane(origin=(2.40458604, 5.05579629, -2.5), x_dir=(-1, 0, 0), z_dir=(0, 0, -1))):
        with BuildLine():
            ThreePointArc((4.432568846, -13.261288916), (4.216995781, -13.347231146), (4.12723276, -13.561241456))
            Line((4.12723276, -13.561241456), (4.12723276, -17.926139223))
            Line((4.12723276, -17.926139223), (1.770623661, -17.926139223))
            Line((1.770623661, -17.926139223), (1.770623661, -13.395686185))
            Line((1.770623661, -13.395686185), (-0.5550959, -13.395686185))
            Line((-0.5550959, -13.395686185), (-0.5550959, -17.926139223))
            Line((-0.5550959, -17.926139223), (-2.840872053, -17.926139223))
            Line((-2.840872053, -17.926139223), (-2.840872053, -13.395686185))
            Line((-2.840872053, -13.395686185), (-8.285917815, -13.395686185))
            Line((-8.285917815, -13.395686185), (-7.384139614, -10.715400976))
            Line((-7.384139614, -10.715400976), (-4.73260744, -10.715400976))
            Line((-4.73260744, -10.715400976), (-4.73260744, 3.629932304))
            Line((-4.73260744, 3.629932304), (-8.481683027, 3.629932304))
            Line((-8.481683027, 3.629932304), (-8.481683027, 6.035056002))
            Line((-8.481683027, 6.035056002), (-2.840872053, 6.035056002))
            Line((-2.840872053, 6.035056002), (-2.840872053, 10.899070066))
            Line((-2.840872053, 10.899070066), (-0.5550959, 10.899070066))
            Line((-0.5550959, 10.899070066), (-0.5550959, 6.035056002))
            Line((-0.5550959, 6.035056002), (1.770623661, 6.035056002))
            Line((1.770623661, 6.035056002), (1.770623661, 10.899070066))
            Line((1.770623661, 10.899070066), (4.12723276, 10.899070066))
            Line((4.12723276, 10.899070066), (4.12723276, 6.246143352))
            ThreePointArc((4.12723276, 6.246143352), (4.227791491, 6.022038064), (4.46205396, 5.948171065))
            add(Edge.make_bspline(
                [(4.432568846, -13.261288916), (4.849636806, -13.268708458), (5.98048136, -13.271449308), (7.794832478, -13.090271032), (9.783873696, -12.344515621), (11.540556036, -11.052358459), (12.564181649, -9.179795832), (12.955550354, -7.143685881), (12.593966957, -5.21310593), (11.646751192, -3.465266484), (10.232722145, -2.740195794), (9.250057043, -2.561034839), (8.750477475, -2.542580923), (8.50068383, -2.219648818), (8.784009377, -1.934125986), (9.226109387, -1.668162515), (9.919121901, -1.102236302), (10.570682868, -0.118824042), (11.103114061, 1.16921053), (11.036403439, 2.73148482), (10.346932114, 4.232154462), (9.027316851, 5.196599259), (7.619143878, 5.628972396), (6.275382284, 5.94833303), (5.214289363, 6.012654431), (4.618172733, 5.966415188), (4.46205396, 5.948171065)],
                knots=[0.009261903, 0.009261903, 0.009261903, 0.009261903, 0.047134138, 0.111411615, 0.173043756, 0.237437897, 0.304153642, 0.361015466, 0.421832084, 0.478884562, 0.534307736, 0.557824401, 0.569788977, 0.5785267, 0.586794862, 0.600583119, 0.627786372, 0.665364189, 0.706885293, 0.751518655, 0.802969516, 0.850764387, 0.894339537, 0.935725195, 0.97558798, 0.989801524, 0.989801524, 0.989801524, 0.989801524], degree=3))
        make_face()
        with BuildLine():
            Line((-0.5550959, 3.686744271), (3.348191015, 3.686744271))
            add(Edge.make_bspline(
                [(3.348191015, 3.686744271), (4.141267216, 3.56069148), (5.366493628, 3.347369666), (6.283213897, 2.246261692), (6.444658055, 1.326625386), (6.441596122, 0.427967574), (6.110231896, -0.541286606), (5.40923725, -1.183233231), (4.474914869, -1.684808073), (3.757208507, -1.861144467), (3.348191015, -1.921662594)],
                knots=[0, 0, 0, 0, 0.269919589, 0.369123458, 0.441025413, 0.567546851, 0.657930272, 0.763523098, 0.865803246, 1, 1, 1, 1], degree=3))
            Line((3.348191015, -1.921662594), (-0.5550959, -1.921662594))
            Line((-0.5550959, -1.921662594), (-0.5550959, 3.686744271))
        make_face(mode=Mode.SUBTRACT)
        with BuildLine():
            Line((-0.42913087, -4.167643381), (3.992403585, -4.167643381))
            add(Edge.make_bspline(
                [(3.992403585, -4.167643381), (4.587512864, -4.272183954), (5.572497818, -4.32153134), (6.639994555, -5.013685273), (7.566714866, -5.647143489), (8.000595426, -6.907925525), (7.999345796, -8.175630682), (7.65286389, -9.305868029), (6.888383055, -10.137129269), (5.696203316, -10.591976345), (4.820749189, -10.938794377), (4.302446939, -10.89171276)],
                knots=[0, 0, 0, 0, 0.161654957, 0.24756242, 0.333429326, 0.451191423, 0.578889109, 0.665800718, 0.756992871, 0.864854658, 1, 1, 1, 1], degree=3))
            Line((4.302446939, -10.89171276), (-0.42913087, -10.89171276))
            Line((-0.42913087, -10.89171276), (-0.42913087, -4.167643381))
        make_face(mode=Mode.SUBTRACT)
    extrude(amount=-ENL_V_MAT_EXTRU_3_DEPTH, mode=Mode.SUBTRACT)


solid = part.part
